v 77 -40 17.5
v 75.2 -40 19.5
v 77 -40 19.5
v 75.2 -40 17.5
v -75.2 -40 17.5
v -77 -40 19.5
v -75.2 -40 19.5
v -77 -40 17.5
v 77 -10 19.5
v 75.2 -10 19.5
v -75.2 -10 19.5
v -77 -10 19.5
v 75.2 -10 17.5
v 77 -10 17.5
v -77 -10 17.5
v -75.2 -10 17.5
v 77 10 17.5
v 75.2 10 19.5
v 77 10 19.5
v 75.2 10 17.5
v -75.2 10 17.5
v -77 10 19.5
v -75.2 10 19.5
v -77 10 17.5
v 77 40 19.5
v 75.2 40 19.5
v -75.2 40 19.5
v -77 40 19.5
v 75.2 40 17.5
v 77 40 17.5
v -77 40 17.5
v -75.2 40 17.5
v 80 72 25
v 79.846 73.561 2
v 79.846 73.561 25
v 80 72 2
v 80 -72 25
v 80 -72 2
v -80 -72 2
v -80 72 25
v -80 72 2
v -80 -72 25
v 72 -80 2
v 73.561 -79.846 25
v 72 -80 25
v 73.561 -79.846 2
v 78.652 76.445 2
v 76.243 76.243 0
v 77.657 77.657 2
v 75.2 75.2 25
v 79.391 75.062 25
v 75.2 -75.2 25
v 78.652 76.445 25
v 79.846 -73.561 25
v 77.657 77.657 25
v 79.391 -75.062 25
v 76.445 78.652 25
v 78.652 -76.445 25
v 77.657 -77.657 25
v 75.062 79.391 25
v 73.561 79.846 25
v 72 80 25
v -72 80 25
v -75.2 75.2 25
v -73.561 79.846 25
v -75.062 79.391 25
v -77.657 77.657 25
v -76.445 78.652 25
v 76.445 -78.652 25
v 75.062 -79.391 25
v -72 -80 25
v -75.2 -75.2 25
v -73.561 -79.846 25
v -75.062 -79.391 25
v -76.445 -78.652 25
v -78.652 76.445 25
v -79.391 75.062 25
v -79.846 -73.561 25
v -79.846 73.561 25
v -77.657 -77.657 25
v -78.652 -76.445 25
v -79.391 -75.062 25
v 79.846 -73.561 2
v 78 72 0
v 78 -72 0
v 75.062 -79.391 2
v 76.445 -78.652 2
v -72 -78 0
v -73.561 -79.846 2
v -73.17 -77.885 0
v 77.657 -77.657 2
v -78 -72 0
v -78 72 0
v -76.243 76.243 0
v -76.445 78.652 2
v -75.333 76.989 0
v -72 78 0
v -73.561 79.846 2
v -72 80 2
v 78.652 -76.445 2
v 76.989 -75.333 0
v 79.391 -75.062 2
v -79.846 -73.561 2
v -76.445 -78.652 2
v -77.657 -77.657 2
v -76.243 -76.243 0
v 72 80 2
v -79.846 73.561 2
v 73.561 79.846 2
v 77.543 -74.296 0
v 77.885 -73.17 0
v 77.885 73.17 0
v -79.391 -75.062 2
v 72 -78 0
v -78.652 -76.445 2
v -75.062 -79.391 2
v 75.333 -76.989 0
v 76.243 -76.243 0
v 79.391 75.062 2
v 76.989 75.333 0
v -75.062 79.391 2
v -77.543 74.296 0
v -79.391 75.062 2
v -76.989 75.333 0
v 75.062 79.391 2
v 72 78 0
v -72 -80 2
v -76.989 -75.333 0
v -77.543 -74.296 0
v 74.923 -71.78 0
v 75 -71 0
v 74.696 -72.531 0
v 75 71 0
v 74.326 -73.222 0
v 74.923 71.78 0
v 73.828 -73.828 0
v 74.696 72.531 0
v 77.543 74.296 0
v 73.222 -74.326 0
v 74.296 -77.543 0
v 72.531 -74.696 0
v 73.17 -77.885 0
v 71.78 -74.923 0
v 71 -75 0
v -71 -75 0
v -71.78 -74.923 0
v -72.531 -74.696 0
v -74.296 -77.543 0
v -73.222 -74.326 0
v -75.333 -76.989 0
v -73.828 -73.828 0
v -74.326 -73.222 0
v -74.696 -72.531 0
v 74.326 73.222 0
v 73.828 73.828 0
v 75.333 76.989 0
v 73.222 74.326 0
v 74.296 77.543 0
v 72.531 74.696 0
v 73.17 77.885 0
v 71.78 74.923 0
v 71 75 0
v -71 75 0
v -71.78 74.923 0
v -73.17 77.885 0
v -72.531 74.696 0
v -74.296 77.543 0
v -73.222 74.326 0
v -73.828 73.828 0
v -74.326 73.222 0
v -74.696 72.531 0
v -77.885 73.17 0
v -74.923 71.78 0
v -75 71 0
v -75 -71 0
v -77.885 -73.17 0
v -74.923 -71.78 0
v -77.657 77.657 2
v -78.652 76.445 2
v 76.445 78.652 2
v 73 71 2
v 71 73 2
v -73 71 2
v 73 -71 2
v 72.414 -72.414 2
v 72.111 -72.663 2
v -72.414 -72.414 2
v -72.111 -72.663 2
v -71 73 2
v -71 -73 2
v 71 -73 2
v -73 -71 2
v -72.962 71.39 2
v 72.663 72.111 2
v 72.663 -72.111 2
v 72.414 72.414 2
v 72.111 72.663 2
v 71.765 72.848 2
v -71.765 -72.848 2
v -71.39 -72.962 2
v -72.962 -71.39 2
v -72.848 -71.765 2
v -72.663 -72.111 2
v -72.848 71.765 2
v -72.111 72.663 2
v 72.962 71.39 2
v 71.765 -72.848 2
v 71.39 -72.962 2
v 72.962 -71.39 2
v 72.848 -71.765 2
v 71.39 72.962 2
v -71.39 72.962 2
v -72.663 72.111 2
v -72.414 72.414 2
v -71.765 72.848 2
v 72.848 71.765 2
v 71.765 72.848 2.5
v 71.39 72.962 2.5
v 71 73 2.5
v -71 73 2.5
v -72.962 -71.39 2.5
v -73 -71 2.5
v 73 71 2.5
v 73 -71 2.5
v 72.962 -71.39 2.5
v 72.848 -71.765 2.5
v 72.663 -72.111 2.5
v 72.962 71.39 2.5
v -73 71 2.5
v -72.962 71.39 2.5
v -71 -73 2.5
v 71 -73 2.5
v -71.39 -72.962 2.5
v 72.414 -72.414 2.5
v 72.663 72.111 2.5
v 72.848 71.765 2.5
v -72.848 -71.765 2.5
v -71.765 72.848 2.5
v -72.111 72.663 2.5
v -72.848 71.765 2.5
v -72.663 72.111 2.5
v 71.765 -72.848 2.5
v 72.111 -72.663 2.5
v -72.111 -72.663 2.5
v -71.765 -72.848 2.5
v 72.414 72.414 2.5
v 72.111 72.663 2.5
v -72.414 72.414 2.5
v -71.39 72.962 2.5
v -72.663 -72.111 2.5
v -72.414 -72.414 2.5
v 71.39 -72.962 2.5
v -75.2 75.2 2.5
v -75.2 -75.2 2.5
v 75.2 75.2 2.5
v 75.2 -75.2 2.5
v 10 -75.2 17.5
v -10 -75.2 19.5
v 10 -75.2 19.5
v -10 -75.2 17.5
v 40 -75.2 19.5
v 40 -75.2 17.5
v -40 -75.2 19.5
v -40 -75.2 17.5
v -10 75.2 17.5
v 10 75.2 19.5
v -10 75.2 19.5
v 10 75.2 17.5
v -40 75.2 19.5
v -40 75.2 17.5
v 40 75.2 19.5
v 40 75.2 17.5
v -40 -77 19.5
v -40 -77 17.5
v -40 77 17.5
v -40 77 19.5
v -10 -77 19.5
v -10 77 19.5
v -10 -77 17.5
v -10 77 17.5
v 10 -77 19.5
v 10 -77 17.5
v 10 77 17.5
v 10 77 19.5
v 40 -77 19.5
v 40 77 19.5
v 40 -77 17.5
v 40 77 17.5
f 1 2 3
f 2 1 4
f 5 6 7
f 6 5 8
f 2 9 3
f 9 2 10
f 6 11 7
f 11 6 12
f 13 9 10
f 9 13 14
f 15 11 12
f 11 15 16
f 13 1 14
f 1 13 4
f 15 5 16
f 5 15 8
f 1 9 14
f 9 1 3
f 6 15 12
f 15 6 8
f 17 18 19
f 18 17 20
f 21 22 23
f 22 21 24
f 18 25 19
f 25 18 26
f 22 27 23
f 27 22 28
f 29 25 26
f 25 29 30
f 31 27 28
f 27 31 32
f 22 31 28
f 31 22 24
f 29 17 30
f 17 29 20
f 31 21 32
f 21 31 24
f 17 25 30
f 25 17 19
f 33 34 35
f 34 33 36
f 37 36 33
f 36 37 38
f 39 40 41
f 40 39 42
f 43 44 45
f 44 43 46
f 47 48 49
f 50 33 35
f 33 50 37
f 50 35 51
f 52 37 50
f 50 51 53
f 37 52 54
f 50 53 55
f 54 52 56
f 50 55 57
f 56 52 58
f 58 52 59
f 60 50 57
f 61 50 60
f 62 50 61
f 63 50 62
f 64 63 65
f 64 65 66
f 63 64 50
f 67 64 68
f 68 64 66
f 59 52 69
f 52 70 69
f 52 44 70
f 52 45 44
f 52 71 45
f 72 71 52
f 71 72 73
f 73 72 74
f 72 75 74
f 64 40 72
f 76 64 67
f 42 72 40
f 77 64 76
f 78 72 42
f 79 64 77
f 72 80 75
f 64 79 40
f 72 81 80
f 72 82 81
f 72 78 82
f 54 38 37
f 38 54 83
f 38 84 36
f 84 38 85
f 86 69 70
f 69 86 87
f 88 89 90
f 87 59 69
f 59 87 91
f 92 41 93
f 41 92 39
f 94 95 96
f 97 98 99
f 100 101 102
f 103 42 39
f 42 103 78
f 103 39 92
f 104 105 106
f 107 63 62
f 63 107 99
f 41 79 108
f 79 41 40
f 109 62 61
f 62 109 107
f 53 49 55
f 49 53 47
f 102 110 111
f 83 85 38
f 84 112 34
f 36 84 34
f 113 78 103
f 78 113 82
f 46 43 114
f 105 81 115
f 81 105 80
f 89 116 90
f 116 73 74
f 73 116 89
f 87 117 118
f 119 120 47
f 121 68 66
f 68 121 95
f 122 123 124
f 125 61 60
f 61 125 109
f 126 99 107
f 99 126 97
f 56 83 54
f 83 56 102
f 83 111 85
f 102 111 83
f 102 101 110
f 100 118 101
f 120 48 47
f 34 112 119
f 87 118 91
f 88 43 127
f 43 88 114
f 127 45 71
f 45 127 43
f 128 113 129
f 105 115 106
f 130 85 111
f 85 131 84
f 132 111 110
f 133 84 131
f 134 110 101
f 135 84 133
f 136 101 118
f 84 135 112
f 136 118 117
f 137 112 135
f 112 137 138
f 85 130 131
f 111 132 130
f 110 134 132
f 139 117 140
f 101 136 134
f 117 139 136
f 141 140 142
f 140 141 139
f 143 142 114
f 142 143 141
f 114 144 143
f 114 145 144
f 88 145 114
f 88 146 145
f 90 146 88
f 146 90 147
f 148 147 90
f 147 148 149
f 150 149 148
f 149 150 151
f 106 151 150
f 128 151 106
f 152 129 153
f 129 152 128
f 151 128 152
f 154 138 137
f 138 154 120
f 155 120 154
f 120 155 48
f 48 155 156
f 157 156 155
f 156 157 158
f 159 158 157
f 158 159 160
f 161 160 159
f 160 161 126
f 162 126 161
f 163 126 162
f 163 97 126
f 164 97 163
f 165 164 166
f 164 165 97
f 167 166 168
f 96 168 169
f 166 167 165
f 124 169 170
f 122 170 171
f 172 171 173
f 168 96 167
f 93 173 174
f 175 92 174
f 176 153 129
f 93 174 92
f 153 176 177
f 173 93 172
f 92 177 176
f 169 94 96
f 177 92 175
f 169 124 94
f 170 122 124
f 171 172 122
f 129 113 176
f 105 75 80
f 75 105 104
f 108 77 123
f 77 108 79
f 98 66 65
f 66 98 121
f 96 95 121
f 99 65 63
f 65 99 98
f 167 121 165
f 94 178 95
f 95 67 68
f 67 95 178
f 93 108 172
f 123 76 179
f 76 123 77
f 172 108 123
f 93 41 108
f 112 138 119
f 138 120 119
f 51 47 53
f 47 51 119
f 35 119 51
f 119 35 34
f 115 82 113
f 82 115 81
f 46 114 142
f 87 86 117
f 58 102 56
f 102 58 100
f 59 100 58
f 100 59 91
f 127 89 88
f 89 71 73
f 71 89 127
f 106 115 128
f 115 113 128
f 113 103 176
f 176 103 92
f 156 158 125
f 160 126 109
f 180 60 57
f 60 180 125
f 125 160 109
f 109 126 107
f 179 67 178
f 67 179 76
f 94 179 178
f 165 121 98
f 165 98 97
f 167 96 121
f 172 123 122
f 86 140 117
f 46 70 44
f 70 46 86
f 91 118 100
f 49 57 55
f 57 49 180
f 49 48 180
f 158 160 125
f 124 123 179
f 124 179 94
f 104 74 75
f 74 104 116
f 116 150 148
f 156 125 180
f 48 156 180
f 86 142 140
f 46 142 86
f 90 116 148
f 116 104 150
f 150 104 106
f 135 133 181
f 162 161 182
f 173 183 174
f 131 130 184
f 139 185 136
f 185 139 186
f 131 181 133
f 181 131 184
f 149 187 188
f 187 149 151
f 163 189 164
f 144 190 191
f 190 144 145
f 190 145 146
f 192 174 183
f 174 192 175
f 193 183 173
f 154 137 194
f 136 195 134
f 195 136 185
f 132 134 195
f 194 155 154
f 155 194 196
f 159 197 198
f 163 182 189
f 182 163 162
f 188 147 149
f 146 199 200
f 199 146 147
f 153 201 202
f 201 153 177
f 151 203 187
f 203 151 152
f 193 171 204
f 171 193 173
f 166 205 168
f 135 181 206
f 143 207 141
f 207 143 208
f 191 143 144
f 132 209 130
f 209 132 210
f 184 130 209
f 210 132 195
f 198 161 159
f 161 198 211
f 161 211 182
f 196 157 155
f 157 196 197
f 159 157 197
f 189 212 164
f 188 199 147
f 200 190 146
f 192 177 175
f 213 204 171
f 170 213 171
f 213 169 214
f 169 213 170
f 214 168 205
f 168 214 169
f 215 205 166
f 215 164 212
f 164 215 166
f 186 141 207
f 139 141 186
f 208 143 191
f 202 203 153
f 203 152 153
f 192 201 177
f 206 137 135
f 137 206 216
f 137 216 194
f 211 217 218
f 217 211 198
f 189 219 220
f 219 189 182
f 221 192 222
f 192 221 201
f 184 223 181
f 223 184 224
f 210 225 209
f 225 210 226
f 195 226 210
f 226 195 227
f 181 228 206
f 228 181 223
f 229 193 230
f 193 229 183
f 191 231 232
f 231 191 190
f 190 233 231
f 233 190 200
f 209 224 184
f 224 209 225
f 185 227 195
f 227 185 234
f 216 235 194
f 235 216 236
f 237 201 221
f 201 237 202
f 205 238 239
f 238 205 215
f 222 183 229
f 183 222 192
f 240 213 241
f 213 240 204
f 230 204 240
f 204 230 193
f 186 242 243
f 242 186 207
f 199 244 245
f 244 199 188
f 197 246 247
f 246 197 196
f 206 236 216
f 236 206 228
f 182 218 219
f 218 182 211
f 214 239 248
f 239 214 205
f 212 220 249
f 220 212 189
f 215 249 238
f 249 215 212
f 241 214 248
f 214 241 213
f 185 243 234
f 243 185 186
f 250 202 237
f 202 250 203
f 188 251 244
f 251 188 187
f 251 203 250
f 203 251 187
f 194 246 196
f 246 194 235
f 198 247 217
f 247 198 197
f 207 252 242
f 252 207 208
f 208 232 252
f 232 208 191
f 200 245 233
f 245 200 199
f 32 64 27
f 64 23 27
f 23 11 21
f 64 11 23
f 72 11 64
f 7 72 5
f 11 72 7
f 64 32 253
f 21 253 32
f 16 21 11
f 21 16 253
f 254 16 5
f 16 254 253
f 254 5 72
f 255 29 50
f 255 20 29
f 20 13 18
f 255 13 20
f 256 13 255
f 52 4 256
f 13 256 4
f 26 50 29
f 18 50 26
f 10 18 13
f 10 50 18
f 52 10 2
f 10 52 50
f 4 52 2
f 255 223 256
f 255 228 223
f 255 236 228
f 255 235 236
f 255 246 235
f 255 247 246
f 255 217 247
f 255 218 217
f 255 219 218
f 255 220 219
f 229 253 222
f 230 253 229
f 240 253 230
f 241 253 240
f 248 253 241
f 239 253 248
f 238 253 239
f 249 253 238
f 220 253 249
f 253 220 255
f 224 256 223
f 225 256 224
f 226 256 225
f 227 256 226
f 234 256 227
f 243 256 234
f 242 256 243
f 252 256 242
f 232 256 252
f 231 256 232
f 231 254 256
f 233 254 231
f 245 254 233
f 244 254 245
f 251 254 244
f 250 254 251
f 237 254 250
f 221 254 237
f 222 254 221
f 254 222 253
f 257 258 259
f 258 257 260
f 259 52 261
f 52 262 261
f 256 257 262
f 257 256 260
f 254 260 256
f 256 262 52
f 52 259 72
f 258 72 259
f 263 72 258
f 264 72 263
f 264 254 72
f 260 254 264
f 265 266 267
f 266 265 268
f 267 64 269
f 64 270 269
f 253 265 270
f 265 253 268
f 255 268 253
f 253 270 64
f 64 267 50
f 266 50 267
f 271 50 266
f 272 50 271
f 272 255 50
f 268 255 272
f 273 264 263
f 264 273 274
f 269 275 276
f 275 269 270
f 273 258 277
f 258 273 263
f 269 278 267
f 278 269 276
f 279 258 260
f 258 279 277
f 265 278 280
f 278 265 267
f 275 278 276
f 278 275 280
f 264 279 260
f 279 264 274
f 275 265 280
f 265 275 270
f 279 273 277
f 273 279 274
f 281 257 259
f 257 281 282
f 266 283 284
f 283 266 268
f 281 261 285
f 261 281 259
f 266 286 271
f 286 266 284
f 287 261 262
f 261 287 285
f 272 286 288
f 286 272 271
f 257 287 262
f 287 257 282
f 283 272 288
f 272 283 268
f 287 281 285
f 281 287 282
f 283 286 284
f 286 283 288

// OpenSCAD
$d = 144;
$di = $d - 2;
$c = 1;

difference() {
    hull() {
        for(i=[-1,1])for(j=[-1,1])translate([$d/2*i,$d/2*j,0]) {
            cylinder(r=6,h=1,$fn=32);
            translate([0,0,2]) cylinder(r=8,h=23,$fn=32);
        }
    }
    
    hull() {
        for(i=[-1,1])for(j=[-1,1])translate([$di/2*i,$di/2*j,0]) {
            cylinder(r1=4,r2=2,h=2,$fn=32);
        }
    }
    hull() for(i=[-1,1])for(j=[-1,1])translate([$di/2*i,$di/2*j,2]) {
            cylinder(r=2,h=50,$fn=32);
    }
    translate([0,0,25+2.5]) cube([150.4,150.4,50],center=true);
    translate([-150/6,0,1+2.5+15]) cube([30,154,2],center=true);
    translate([+150/6,0,1+2.5+15]) cube([30,154,2],center=true);
    rotate([0,0,90]) {
        translate([-150/6,0,1+2.5+15]) cube([30,154,2],center=true);
        translate([+150/6,0,1+2.5+15]) cube([30,154,2],center=true);
    }
}

%cube([150,150,1],center=true);
